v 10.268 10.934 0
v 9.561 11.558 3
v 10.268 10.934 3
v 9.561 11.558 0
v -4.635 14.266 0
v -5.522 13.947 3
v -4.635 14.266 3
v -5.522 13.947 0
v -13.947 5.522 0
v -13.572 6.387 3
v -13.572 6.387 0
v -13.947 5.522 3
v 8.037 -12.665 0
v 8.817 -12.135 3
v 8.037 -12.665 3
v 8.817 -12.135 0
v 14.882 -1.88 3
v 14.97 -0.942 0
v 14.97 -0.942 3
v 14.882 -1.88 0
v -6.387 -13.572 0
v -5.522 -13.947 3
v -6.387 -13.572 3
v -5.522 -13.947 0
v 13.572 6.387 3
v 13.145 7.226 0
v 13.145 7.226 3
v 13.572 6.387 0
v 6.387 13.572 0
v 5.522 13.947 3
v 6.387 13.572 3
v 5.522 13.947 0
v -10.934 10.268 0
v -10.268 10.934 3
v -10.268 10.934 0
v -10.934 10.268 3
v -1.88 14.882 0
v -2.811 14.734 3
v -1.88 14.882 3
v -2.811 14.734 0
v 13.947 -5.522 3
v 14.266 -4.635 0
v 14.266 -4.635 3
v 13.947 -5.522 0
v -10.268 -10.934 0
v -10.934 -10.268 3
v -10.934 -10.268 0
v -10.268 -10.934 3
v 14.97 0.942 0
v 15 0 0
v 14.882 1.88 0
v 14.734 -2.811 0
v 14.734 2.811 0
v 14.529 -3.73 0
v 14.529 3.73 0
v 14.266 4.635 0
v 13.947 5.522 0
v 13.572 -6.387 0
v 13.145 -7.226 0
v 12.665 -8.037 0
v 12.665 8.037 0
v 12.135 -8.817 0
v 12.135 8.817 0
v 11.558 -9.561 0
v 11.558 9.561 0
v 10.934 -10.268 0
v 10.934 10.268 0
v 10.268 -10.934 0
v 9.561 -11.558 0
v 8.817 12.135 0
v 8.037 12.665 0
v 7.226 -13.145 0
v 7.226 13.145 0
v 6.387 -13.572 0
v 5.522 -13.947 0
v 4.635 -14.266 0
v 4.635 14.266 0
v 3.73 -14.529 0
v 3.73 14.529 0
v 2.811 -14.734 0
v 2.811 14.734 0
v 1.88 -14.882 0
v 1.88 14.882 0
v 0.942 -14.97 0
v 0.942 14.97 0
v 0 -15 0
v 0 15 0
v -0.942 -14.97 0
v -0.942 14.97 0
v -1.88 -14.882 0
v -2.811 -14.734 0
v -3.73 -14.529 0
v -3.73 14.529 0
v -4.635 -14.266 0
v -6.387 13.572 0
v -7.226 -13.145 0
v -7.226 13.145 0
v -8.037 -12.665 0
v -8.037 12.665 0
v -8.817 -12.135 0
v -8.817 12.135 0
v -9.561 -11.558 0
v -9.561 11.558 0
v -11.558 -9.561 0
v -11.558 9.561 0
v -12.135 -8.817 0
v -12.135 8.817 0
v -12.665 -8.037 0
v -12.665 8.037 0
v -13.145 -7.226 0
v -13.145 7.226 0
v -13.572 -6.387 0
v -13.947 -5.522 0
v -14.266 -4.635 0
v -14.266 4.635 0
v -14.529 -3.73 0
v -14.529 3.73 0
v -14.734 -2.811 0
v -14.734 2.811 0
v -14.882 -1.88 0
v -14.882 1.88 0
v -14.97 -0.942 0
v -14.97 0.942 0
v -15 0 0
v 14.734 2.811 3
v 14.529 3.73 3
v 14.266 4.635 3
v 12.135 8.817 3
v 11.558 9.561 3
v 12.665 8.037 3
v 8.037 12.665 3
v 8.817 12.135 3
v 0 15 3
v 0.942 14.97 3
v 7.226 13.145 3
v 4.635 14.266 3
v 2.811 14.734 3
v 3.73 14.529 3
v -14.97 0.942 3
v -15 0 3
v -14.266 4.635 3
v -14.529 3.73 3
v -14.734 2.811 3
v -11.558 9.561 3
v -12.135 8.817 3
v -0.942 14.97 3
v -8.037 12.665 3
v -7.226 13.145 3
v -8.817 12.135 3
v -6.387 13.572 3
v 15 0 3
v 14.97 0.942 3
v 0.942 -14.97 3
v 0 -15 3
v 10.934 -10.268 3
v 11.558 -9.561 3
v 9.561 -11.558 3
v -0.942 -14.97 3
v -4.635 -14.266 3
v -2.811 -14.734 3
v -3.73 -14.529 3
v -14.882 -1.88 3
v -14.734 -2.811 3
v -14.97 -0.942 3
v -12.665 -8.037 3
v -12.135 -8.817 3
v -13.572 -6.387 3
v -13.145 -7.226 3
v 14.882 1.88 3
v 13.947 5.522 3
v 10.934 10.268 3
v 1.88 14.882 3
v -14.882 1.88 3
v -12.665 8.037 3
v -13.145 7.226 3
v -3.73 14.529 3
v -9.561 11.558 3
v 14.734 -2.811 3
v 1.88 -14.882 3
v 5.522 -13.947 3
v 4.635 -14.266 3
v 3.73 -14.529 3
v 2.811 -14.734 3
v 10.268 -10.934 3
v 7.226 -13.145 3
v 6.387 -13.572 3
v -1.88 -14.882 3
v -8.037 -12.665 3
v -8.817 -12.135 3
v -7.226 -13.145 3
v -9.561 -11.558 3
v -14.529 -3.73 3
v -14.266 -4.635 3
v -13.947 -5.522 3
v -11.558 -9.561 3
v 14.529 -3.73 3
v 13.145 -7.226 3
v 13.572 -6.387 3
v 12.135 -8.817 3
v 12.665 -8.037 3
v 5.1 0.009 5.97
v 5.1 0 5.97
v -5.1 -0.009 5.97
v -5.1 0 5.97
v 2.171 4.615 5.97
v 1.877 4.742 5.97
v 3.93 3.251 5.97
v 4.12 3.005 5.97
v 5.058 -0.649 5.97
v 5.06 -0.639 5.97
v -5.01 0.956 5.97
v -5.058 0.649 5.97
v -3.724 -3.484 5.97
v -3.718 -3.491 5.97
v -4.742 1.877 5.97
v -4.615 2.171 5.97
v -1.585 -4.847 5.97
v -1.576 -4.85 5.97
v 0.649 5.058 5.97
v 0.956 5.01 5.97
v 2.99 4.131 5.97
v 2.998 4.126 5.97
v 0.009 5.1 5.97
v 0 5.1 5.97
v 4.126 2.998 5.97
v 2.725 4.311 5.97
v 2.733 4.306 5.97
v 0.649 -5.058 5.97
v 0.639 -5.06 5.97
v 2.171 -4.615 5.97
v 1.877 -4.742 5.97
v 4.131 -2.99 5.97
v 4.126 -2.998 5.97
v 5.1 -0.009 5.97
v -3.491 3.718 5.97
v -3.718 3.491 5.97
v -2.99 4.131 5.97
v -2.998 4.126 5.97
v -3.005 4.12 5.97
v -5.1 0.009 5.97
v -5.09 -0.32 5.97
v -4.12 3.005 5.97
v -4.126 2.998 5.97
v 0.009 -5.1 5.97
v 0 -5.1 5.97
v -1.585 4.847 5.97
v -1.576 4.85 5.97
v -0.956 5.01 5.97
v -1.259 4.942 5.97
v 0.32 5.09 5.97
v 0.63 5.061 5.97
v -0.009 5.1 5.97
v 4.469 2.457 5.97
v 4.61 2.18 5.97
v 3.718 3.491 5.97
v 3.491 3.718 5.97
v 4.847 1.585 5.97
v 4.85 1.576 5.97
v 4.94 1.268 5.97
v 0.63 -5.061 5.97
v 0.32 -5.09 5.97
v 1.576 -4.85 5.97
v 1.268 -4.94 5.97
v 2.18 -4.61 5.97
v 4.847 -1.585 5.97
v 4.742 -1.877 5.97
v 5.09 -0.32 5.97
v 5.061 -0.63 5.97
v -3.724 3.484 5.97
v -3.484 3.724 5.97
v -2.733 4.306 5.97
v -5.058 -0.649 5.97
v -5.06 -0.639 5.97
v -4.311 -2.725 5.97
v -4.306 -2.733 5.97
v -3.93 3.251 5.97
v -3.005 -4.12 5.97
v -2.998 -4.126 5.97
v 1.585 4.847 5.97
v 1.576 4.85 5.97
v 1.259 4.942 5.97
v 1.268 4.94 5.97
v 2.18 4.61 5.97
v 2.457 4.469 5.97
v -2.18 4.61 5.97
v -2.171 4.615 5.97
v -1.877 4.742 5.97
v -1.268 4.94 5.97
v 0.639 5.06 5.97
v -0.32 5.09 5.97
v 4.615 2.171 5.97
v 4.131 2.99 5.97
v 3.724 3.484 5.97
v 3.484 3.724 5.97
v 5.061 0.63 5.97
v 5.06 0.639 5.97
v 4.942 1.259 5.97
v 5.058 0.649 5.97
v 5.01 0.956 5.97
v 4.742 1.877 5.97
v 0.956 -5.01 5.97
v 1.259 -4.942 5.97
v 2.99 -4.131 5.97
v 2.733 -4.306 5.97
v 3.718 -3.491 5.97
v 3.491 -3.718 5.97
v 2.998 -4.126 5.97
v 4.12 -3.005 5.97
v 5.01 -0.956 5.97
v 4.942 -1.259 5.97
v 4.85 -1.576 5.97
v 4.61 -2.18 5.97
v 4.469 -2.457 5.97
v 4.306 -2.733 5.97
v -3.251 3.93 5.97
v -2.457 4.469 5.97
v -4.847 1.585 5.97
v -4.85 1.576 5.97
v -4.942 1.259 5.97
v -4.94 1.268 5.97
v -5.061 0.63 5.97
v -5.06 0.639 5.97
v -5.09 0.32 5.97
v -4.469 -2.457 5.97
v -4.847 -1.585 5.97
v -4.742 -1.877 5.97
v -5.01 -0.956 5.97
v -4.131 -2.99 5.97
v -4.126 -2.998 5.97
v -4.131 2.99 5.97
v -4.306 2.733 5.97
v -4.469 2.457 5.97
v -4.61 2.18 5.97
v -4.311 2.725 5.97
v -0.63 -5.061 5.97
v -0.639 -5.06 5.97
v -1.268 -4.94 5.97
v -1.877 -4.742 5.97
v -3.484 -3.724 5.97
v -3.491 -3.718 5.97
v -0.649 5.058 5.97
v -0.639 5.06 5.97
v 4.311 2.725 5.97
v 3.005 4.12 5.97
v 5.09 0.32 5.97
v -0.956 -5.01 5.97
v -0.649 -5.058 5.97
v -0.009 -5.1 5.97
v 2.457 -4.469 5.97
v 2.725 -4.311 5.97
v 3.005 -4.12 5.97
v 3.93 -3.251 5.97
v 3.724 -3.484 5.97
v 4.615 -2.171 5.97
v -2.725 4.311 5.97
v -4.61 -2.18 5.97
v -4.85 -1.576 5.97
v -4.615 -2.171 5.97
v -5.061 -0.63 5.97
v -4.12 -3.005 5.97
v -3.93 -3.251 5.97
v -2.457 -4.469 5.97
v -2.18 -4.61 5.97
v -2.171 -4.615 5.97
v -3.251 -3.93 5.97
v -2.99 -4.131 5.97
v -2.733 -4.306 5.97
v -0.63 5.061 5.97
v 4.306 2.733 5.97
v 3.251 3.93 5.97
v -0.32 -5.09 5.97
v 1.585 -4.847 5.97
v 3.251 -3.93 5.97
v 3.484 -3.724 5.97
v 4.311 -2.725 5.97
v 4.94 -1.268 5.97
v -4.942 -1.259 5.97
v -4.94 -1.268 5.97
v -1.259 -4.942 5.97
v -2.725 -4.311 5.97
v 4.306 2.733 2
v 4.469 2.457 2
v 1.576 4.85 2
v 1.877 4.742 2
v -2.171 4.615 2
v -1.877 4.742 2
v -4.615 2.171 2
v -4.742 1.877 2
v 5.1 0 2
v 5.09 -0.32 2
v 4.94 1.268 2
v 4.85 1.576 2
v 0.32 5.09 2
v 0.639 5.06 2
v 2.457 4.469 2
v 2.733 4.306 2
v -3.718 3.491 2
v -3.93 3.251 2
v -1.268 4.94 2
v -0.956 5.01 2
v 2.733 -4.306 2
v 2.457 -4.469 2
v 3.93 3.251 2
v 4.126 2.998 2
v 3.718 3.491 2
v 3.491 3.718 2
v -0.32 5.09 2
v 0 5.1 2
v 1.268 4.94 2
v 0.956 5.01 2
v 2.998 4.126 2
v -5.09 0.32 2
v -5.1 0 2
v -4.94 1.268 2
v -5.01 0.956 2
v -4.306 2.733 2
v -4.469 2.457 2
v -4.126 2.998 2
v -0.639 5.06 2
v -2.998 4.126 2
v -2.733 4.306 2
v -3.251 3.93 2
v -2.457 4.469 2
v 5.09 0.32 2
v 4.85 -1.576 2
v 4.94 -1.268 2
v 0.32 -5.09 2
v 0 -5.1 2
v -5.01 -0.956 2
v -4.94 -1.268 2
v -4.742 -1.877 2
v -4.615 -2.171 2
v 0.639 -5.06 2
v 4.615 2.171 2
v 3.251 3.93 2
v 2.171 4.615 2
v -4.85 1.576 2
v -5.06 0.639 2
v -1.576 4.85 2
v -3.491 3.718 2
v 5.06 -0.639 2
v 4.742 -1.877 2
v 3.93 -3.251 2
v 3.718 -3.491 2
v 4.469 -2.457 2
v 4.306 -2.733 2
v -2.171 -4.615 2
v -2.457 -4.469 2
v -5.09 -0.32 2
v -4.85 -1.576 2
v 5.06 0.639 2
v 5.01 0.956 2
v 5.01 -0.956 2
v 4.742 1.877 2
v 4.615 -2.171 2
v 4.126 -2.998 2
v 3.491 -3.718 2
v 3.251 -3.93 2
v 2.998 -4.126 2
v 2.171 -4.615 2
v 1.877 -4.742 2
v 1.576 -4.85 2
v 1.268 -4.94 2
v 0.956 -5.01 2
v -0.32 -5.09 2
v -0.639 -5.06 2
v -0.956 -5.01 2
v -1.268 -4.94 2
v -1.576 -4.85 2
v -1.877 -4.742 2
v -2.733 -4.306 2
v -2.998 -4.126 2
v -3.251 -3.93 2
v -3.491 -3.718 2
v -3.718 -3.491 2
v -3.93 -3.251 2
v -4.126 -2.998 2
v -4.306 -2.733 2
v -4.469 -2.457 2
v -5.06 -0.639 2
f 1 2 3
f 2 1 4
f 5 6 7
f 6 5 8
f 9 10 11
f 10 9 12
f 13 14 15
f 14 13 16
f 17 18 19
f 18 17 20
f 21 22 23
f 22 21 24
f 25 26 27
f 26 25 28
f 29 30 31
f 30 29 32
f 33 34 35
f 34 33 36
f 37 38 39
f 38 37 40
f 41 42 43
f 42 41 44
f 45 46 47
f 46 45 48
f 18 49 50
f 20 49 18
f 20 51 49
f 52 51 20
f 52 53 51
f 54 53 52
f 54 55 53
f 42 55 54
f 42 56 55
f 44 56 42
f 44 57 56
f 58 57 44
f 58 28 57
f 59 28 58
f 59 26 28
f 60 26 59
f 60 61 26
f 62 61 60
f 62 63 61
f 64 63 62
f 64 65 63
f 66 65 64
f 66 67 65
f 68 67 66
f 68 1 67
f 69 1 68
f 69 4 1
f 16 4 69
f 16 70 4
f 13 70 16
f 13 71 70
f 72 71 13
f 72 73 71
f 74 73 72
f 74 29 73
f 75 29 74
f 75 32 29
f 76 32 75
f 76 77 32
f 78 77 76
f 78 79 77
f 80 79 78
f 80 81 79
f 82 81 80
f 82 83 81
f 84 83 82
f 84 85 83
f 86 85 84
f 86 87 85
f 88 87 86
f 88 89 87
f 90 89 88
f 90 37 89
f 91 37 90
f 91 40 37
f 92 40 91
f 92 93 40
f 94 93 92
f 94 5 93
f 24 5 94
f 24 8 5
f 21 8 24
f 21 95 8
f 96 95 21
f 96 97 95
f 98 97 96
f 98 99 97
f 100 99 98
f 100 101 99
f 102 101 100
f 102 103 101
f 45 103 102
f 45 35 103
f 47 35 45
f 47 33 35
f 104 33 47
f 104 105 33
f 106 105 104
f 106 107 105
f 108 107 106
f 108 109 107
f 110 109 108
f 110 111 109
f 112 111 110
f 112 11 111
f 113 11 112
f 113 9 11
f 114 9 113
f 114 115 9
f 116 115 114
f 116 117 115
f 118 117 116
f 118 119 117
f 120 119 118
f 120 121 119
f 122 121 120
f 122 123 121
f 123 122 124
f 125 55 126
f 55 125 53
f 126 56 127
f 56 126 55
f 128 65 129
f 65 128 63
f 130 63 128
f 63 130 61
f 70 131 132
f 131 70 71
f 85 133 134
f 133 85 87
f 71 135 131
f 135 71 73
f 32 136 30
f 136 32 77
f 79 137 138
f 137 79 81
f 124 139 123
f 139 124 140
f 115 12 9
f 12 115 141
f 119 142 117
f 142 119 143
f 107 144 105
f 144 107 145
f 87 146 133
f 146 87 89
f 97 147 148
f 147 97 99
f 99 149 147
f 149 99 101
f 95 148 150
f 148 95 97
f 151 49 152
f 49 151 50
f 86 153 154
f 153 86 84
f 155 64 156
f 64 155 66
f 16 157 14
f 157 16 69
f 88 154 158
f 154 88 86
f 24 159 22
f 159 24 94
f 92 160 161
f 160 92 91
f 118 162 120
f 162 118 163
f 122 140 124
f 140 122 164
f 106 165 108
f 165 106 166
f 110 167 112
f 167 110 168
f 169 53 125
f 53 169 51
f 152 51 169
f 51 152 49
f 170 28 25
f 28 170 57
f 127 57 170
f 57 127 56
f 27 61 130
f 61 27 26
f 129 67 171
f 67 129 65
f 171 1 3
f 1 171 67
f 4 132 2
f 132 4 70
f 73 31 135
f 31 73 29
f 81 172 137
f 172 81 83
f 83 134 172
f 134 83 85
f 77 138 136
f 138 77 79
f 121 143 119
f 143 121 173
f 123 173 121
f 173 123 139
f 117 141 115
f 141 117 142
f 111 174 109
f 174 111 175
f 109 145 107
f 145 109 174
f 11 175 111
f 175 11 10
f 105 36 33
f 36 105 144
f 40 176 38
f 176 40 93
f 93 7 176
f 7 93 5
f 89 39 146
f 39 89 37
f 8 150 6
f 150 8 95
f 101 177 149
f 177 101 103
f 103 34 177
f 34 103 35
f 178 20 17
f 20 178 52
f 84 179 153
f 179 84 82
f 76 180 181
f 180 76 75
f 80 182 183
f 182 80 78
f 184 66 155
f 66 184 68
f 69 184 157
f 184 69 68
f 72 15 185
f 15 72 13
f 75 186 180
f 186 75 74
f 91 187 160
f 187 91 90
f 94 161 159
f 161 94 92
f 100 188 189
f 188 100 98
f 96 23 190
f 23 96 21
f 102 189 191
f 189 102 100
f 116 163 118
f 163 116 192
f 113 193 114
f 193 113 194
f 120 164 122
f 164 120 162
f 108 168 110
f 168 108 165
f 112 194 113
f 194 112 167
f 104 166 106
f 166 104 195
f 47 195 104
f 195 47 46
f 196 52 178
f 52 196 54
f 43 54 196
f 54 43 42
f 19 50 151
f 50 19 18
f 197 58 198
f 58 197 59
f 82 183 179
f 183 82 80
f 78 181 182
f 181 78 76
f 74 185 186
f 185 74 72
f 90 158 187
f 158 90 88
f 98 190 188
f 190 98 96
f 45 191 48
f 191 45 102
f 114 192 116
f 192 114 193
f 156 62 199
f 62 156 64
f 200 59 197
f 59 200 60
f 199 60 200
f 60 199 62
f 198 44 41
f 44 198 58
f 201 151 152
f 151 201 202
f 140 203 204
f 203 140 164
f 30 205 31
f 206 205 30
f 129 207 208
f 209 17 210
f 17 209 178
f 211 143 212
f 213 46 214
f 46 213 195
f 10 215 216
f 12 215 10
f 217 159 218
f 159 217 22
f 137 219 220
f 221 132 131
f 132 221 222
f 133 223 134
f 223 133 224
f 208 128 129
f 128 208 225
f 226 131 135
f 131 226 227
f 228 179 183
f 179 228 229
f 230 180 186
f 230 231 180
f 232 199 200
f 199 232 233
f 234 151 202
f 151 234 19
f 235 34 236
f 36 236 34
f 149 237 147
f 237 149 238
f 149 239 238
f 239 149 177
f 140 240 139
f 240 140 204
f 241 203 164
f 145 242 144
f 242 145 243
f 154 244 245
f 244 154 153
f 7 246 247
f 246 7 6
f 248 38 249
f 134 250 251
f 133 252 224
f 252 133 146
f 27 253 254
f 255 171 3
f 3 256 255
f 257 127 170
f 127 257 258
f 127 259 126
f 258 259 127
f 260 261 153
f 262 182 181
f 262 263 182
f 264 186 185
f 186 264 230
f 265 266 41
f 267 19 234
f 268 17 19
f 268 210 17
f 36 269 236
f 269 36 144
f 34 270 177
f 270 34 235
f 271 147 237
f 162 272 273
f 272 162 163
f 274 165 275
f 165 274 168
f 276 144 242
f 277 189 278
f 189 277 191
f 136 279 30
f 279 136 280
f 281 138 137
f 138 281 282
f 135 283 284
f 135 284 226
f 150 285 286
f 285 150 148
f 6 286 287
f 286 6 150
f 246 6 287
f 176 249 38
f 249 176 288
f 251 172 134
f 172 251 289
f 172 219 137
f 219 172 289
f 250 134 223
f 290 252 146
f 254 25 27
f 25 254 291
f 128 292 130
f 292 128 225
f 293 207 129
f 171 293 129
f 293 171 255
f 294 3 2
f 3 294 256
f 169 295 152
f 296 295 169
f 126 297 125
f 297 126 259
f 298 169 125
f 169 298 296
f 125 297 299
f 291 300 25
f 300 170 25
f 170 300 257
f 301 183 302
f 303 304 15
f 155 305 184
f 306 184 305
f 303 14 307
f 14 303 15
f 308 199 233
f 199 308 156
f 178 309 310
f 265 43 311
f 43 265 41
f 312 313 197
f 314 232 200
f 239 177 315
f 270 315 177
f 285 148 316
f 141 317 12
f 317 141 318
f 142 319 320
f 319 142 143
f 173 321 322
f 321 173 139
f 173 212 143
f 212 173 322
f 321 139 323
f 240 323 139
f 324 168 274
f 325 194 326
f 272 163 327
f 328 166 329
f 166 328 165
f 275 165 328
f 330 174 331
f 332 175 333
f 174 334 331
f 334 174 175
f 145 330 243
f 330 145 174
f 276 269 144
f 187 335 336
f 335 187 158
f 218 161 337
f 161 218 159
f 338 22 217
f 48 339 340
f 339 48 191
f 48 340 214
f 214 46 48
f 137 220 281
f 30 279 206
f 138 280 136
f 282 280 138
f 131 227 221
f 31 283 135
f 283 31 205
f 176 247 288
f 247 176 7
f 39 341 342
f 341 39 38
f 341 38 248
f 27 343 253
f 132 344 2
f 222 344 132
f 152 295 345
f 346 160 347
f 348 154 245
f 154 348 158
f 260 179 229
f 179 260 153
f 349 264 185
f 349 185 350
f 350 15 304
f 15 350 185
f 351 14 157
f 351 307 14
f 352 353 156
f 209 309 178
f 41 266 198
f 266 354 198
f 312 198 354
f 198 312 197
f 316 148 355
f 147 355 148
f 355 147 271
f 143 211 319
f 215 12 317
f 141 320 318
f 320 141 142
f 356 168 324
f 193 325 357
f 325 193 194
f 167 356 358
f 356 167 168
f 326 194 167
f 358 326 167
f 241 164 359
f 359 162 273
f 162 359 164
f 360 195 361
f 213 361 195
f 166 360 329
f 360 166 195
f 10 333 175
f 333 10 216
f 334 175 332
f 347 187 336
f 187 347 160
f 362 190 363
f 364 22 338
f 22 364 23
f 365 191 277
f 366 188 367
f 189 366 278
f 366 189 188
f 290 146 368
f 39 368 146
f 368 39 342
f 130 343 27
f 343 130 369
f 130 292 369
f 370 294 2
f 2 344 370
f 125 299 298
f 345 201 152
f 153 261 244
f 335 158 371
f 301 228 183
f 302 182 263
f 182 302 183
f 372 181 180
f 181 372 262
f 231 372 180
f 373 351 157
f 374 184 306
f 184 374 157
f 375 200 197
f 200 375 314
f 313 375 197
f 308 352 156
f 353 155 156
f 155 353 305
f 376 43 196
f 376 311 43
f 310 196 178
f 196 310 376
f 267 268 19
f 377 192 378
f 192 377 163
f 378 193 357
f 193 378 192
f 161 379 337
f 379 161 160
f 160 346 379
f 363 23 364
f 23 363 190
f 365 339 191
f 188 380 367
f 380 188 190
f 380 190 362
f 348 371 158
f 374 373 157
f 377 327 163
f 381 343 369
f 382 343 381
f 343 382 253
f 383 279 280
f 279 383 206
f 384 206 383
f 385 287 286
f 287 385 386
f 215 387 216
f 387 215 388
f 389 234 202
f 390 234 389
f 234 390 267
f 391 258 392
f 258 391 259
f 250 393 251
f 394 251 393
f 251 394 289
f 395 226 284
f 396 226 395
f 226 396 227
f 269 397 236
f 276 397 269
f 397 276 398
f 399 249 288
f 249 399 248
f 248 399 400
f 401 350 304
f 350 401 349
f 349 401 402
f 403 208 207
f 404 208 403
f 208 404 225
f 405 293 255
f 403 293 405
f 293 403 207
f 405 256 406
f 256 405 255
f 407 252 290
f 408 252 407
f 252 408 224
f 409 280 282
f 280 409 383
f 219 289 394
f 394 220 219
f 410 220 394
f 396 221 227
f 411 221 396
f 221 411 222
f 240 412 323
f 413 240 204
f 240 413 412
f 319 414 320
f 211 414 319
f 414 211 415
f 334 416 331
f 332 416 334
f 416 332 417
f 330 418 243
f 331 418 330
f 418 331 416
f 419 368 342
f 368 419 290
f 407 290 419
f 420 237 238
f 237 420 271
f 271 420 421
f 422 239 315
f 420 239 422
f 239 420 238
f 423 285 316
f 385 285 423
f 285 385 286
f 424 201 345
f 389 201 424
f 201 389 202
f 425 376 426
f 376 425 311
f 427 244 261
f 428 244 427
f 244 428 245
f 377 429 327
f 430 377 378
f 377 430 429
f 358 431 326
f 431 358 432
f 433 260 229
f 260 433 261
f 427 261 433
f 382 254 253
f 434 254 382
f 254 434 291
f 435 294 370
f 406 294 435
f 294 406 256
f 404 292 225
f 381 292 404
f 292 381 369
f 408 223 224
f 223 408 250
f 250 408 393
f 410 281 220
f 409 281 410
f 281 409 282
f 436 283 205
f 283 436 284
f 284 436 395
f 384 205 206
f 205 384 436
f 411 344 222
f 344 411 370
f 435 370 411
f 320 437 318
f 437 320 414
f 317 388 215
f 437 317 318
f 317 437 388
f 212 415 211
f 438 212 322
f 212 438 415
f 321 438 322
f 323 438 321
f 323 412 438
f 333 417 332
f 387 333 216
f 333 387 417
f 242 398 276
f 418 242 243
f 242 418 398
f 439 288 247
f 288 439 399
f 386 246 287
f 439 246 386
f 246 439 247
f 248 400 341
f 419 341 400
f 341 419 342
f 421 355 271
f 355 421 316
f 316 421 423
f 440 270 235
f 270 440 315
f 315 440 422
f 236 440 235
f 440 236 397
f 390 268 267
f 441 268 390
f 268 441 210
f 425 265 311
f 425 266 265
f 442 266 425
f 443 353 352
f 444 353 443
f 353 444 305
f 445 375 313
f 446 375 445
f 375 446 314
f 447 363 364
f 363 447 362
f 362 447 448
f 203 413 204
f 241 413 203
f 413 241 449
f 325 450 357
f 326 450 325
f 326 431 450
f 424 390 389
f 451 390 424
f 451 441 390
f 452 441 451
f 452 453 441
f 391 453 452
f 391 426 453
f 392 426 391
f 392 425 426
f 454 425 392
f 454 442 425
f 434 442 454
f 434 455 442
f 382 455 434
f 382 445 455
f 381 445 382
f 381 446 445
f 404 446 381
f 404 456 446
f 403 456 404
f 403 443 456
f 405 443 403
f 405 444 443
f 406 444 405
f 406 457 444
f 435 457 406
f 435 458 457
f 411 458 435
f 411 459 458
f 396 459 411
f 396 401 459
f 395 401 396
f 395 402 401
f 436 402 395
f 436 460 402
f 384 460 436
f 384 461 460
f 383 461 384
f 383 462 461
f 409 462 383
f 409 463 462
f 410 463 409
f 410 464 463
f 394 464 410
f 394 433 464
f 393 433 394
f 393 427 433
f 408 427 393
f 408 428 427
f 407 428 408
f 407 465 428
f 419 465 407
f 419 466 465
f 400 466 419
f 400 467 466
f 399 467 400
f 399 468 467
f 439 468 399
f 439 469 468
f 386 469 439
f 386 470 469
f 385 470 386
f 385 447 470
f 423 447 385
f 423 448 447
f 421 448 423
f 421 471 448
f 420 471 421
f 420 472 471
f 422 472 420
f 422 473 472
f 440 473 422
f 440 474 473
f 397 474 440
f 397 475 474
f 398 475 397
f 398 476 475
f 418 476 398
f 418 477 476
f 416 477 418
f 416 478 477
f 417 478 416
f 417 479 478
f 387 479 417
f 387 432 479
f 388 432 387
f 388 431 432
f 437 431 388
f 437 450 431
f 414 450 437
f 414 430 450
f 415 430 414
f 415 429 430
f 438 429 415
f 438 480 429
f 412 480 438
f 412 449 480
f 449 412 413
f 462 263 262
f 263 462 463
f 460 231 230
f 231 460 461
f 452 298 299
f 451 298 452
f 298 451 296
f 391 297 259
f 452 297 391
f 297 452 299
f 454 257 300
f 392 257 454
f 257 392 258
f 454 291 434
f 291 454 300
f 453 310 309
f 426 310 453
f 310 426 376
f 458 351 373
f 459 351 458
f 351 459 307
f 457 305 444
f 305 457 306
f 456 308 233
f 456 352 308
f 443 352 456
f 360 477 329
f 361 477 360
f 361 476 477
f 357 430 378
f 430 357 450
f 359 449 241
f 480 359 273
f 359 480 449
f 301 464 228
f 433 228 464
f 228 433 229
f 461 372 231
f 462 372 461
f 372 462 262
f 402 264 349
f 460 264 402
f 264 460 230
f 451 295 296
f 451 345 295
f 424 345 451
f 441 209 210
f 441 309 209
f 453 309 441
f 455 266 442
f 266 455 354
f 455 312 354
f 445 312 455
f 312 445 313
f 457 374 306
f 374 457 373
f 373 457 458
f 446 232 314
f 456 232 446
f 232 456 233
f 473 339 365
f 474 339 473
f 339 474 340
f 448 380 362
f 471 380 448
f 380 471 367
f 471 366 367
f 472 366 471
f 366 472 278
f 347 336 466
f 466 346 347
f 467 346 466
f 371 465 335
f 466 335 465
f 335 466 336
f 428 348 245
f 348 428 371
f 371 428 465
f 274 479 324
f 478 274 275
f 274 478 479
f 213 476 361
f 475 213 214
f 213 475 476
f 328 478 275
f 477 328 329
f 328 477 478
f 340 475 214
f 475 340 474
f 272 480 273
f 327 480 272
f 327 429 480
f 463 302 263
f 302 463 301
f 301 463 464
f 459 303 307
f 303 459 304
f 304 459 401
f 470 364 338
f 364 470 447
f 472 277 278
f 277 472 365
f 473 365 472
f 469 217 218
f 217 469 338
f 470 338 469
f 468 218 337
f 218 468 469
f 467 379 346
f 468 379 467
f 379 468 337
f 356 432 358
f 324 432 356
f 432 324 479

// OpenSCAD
difference () {
union () {
cylinder (3, r=15, true, $fn=100);
translate ([0,0,3])
cylinder (3, r=15, r2=5, true, $fn=100);
}
translate ([0,0,2])
cylinder (6, r=5.1, true, $fn=100);
}
